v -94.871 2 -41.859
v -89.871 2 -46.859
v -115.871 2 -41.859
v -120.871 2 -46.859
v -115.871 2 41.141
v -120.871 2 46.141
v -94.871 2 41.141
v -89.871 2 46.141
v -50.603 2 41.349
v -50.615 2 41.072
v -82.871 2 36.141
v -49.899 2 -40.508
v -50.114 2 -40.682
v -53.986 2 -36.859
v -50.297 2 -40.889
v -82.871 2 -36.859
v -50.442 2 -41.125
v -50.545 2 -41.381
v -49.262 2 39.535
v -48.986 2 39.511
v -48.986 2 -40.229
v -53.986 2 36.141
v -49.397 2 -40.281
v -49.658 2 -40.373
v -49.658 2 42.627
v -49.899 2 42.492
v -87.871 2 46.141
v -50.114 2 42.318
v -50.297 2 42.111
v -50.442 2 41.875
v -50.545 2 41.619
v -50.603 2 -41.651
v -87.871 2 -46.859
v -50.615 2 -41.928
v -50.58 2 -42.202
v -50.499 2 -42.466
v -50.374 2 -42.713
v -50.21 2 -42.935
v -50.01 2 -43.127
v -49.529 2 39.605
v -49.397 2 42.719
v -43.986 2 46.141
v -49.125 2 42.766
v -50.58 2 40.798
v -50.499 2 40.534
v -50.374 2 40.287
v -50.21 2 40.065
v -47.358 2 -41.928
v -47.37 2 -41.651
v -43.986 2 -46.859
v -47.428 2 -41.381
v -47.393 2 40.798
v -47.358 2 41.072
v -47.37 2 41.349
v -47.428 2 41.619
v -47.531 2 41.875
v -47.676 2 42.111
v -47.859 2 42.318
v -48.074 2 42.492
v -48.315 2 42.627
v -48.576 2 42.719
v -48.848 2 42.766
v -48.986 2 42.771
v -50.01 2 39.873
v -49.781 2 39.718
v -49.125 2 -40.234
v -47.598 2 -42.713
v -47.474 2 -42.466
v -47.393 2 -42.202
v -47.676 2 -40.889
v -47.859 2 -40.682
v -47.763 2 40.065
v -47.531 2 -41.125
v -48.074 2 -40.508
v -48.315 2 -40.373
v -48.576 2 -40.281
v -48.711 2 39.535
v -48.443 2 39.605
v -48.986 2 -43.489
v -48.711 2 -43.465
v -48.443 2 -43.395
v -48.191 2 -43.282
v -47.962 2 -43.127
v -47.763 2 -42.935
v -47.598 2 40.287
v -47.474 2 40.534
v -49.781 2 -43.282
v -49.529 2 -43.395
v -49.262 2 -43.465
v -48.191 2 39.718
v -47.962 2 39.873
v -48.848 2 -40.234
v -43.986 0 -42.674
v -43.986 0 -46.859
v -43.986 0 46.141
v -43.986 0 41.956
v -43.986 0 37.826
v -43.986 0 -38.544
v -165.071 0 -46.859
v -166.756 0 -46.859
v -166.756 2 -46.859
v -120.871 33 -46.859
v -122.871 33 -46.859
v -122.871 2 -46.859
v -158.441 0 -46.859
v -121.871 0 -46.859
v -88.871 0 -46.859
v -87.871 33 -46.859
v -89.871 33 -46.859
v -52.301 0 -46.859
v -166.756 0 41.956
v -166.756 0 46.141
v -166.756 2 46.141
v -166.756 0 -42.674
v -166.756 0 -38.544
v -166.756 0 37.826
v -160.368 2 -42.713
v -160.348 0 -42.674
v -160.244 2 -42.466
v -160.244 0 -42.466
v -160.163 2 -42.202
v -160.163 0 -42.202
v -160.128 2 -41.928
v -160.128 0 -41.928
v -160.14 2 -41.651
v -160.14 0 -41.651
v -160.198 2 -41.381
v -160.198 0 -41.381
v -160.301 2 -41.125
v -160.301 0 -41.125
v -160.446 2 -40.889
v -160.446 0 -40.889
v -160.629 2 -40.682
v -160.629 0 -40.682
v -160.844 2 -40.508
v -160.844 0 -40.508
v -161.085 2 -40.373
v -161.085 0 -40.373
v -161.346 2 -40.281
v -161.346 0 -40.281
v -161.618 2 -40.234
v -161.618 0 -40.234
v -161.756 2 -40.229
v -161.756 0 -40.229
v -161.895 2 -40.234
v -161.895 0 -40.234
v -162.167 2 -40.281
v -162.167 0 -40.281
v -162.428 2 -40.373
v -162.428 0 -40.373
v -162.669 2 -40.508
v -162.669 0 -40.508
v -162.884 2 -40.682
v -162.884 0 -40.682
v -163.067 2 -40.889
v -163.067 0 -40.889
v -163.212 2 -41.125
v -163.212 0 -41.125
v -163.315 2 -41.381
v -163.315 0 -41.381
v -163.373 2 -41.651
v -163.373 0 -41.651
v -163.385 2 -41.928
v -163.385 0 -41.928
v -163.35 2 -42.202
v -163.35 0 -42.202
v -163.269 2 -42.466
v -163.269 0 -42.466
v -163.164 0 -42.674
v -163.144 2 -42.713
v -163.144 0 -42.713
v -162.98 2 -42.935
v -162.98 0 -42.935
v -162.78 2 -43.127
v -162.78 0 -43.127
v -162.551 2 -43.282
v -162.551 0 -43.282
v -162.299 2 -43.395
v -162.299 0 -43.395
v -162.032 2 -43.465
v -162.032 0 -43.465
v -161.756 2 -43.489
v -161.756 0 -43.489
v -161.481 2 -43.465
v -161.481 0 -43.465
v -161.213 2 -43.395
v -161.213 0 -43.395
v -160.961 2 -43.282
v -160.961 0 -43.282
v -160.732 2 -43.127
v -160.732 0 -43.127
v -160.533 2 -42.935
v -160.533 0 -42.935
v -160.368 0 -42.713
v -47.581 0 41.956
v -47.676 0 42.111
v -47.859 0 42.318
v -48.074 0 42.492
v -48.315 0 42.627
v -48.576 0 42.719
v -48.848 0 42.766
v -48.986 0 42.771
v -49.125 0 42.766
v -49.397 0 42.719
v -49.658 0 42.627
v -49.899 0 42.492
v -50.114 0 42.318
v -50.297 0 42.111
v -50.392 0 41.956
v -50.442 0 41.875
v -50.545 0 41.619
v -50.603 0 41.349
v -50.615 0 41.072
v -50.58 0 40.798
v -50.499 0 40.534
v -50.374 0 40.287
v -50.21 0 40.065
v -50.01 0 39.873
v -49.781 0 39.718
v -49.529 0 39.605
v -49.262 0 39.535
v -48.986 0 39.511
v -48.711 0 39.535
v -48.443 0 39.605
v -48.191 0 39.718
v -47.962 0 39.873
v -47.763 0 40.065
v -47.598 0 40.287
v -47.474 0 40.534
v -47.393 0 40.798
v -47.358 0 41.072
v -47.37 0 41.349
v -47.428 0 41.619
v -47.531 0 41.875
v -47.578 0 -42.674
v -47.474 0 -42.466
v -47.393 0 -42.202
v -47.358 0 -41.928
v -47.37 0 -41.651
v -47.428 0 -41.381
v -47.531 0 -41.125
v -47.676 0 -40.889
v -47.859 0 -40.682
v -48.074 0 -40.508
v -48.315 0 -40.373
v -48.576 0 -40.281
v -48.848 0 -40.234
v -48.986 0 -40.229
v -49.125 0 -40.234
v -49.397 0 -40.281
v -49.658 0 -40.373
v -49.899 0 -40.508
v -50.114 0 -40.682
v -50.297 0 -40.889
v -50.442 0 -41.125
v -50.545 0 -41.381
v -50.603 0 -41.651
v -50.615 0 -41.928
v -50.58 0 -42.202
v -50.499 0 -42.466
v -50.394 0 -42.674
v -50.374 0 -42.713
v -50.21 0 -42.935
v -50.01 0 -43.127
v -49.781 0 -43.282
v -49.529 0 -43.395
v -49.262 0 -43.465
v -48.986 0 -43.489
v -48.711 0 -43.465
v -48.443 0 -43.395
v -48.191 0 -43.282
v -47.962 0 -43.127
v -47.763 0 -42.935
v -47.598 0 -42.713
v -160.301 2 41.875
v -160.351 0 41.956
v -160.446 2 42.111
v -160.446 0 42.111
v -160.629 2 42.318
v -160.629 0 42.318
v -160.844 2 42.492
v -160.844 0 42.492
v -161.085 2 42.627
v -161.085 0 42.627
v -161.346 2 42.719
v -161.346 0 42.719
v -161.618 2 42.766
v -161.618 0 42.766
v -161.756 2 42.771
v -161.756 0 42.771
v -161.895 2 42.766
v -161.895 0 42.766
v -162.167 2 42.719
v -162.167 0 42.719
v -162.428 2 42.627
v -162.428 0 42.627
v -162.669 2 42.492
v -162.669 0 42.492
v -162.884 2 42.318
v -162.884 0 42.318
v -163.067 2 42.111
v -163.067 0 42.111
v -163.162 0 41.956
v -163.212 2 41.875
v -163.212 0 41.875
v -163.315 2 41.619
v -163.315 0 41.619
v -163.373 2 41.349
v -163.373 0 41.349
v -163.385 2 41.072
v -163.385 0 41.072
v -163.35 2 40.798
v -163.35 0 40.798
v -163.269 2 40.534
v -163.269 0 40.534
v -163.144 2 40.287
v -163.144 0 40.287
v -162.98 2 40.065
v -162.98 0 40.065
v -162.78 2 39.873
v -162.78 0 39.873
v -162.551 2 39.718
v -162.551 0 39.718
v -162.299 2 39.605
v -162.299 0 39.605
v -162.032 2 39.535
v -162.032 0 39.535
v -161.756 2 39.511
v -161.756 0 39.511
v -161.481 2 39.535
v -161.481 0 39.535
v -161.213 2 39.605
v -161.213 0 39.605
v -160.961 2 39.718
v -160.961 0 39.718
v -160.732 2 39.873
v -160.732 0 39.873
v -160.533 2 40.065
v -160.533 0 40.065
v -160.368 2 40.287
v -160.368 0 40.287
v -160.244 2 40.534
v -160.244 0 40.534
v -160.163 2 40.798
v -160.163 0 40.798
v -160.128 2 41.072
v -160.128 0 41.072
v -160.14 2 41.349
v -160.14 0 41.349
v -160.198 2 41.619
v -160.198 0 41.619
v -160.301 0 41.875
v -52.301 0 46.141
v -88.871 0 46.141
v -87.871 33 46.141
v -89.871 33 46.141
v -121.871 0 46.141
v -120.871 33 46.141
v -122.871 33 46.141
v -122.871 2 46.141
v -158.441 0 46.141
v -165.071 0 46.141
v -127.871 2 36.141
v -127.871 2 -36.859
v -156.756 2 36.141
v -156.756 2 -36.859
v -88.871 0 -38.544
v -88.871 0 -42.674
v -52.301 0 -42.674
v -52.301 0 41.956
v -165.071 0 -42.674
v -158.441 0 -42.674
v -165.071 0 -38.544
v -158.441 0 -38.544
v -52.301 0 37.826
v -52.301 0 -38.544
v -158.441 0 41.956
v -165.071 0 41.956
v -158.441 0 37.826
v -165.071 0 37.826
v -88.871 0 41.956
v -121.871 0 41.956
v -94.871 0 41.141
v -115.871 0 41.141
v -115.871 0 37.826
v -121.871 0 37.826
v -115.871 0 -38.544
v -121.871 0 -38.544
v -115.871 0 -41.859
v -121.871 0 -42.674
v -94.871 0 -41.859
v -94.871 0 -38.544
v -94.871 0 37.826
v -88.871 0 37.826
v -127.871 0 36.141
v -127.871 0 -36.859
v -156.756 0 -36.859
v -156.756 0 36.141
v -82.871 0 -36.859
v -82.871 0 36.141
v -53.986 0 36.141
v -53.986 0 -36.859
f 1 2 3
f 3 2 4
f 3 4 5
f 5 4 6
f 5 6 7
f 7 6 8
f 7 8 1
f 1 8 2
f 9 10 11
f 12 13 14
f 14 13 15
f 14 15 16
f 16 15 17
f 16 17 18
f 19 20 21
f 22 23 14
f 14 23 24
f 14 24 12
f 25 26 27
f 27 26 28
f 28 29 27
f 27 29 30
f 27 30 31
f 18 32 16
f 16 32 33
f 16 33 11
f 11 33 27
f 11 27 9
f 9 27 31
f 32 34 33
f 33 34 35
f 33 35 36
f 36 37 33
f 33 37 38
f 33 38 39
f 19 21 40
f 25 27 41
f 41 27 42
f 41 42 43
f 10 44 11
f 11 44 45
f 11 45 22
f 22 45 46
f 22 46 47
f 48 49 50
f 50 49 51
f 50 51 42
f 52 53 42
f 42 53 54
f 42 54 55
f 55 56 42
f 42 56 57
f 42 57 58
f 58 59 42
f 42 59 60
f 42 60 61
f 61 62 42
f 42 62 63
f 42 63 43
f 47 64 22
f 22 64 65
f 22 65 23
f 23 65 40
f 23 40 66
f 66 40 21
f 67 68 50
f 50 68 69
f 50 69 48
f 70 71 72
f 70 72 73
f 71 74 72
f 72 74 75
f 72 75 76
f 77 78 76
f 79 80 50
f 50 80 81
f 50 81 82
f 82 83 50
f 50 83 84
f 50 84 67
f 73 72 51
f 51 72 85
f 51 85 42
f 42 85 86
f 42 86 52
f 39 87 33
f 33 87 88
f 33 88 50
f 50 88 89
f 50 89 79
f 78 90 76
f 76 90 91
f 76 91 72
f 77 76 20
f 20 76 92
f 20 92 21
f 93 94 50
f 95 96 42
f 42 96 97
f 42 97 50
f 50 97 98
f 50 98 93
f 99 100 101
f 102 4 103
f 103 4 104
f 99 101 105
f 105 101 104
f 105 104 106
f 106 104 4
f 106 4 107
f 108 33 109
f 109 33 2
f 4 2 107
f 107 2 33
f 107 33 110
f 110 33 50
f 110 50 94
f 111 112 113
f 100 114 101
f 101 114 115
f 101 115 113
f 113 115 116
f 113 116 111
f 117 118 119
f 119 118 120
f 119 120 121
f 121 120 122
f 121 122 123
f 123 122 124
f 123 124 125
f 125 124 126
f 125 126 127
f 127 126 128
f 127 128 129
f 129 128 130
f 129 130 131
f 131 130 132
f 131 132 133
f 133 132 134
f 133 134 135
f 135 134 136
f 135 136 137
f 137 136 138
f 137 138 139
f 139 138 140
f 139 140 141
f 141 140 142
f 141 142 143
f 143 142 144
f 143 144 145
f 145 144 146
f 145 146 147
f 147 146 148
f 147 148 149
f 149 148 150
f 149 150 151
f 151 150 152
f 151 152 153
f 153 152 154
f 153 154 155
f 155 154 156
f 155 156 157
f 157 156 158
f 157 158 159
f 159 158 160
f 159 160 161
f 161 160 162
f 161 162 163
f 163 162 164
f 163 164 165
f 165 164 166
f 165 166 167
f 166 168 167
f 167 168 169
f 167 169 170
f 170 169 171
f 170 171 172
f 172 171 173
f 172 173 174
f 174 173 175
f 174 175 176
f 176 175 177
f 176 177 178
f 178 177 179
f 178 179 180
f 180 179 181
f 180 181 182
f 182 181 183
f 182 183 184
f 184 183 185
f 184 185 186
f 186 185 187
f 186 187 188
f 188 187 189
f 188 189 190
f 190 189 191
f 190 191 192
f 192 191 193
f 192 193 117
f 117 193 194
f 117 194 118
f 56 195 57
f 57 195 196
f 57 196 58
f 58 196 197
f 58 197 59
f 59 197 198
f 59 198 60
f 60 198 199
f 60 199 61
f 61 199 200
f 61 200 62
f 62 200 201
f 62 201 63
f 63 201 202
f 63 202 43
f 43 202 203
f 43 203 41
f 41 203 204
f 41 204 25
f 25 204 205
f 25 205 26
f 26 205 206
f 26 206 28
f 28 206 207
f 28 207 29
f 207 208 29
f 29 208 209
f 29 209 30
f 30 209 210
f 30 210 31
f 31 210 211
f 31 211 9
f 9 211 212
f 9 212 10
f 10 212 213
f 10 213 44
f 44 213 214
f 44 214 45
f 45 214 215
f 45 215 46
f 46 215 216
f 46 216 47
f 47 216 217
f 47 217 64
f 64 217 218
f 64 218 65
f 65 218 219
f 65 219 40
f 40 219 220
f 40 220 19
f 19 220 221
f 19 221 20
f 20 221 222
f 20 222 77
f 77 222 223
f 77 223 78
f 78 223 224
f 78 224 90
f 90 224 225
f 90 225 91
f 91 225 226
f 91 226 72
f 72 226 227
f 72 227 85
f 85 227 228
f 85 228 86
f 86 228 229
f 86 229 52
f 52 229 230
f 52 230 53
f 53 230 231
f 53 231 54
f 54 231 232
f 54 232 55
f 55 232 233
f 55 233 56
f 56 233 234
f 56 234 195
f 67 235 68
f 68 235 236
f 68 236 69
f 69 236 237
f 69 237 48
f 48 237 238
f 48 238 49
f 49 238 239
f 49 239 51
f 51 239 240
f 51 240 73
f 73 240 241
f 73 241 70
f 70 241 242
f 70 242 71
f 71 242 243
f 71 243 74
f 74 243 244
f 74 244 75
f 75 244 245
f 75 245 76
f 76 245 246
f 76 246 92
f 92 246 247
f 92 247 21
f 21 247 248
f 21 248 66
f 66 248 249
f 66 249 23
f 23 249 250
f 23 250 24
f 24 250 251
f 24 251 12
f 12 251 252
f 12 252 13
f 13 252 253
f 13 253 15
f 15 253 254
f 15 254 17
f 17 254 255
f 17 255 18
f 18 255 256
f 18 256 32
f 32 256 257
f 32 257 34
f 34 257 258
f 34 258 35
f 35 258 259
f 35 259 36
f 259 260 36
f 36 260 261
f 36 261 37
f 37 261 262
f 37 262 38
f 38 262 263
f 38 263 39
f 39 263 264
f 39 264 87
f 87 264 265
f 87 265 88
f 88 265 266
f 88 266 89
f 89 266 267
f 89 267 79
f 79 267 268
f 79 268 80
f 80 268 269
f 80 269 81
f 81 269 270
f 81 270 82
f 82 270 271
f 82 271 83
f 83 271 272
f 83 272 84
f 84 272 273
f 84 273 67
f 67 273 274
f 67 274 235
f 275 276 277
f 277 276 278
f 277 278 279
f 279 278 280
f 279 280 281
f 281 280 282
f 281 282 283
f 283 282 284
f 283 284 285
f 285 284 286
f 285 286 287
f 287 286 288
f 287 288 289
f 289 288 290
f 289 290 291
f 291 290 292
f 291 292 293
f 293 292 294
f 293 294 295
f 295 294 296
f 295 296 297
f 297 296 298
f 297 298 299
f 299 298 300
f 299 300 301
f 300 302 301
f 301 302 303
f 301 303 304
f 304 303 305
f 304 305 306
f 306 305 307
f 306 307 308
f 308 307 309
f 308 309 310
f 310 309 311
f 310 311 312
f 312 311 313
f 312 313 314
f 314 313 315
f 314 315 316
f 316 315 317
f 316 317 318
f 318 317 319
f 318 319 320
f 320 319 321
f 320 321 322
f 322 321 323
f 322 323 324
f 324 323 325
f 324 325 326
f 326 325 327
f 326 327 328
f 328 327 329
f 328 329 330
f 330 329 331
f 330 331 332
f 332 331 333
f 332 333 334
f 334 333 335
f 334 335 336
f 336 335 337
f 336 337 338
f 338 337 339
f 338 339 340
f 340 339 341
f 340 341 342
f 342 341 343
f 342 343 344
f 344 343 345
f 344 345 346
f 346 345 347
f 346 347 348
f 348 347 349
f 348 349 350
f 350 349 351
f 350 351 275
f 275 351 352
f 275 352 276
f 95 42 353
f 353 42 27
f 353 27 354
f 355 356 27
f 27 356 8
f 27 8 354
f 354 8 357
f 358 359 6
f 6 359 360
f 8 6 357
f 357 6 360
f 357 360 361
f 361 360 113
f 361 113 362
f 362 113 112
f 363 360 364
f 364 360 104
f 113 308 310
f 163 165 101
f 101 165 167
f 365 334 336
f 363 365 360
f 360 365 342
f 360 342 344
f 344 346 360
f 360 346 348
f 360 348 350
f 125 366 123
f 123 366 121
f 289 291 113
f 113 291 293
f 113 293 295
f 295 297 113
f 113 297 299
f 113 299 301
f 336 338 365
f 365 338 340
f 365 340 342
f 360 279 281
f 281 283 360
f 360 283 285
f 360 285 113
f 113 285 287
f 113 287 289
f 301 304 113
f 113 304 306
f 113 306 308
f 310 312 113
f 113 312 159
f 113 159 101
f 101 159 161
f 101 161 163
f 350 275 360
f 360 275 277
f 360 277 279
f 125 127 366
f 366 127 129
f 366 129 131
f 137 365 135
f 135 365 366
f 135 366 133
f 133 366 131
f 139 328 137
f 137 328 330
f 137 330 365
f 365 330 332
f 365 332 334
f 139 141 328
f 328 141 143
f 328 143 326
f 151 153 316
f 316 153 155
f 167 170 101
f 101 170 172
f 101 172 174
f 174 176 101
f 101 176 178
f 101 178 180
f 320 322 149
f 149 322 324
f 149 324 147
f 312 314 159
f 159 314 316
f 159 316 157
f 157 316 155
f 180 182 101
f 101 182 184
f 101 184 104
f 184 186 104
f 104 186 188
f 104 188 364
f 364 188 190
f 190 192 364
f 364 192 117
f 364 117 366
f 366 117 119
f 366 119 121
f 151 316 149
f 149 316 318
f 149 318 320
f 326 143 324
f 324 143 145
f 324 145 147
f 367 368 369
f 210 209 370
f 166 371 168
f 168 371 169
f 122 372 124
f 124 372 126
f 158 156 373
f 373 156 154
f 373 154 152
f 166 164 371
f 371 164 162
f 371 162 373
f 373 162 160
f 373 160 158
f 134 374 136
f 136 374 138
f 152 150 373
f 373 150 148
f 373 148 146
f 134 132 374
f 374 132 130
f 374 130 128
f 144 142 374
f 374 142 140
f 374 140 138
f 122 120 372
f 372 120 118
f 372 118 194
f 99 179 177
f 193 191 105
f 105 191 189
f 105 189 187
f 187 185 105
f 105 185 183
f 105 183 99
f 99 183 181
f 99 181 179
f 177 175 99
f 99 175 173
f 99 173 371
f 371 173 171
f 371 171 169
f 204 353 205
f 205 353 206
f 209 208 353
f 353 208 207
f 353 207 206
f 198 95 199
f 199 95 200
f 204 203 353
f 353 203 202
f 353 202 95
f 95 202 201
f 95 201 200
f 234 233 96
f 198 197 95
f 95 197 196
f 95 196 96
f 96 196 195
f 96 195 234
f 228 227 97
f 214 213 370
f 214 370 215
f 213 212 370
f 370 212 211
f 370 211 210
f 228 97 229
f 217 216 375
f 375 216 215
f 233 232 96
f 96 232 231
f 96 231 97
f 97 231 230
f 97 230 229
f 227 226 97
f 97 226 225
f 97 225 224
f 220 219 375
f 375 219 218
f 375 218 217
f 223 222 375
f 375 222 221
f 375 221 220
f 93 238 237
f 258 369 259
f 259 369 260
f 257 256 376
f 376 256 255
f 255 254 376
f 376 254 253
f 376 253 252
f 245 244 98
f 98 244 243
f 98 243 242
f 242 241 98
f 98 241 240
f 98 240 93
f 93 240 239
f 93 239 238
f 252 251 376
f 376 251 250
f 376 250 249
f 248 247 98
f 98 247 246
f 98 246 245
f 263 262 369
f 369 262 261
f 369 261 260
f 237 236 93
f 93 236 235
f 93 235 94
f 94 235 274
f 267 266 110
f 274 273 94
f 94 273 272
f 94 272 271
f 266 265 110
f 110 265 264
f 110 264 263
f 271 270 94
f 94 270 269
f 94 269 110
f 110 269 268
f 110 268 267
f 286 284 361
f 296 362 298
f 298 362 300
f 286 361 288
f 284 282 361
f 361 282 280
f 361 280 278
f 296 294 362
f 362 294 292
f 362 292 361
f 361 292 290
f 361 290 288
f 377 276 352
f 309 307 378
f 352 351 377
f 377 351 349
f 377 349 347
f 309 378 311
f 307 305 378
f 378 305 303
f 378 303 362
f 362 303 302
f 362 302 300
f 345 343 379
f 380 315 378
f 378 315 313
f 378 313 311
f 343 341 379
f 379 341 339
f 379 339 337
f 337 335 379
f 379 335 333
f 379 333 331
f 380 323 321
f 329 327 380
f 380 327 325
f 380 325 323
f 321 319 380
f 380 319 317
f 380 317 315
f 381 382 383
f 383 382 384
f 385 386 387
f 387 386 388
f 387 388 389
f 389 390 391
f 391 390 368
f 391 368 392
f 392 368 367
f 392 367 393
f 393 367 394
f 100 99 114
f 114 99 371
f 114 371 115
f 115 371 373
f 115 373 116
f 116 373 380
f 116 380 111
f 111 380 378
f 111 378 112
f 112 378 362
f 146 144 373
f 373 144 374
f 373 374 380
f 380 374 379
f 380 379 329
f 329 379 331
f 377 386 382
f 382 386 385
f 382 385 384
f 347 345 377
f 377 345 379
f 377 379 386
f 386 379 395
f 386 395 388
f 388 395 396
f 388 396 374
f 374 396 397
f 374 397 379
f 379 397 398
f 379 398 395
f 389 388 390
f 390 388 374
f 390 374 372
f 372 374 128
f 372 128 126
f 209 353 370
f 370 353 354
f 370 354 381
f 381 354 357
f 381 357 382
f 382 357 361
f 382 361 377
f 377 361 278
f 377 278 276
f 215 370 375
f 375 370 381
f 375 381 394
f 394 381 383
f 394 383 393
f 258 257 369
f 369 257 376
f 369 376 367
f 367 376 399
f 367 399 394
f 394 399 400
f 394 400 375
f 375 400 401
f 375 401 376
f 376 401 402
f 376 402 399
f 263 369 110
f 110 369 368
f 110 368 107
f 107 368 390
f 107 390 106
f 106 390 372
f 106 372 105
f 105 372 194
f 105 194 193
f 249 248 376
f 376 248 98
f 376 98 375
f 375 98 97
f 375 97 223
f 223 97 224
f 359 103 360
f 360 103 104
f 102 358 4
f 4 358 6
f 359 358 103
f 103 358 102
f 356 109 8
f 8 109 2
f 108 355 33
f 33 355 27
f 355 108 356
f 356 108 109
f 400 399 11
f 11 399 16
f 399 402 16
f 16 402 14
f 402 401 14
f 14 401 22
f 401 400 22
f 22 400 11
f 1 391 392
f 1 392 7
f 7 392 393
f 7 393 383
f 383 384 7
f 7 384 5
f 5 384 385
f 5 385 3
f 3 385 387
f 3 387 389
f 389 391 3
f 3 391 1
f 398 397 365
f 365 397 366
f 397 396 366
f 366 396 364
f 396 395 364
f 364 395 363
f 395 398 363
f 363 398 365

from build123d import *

# Parameters (mm, degrees)
SKETCH1_W           = 122.77
SKETCH1_H           = 93
SKETCH1_R           = 1.63
BOSS_EXTRUDE1_DEPTH = 2
SKETCH2_W           = 2
SKETCH2_H           = 93
BOSS_EXTRUDE2_DEPTH = 31
SKETCH3_W           = 28.885
SKETCH3_H           = 73
SKETCH3_W_2         = 21
SKETCH3_H_2         = 83
CUT_EXTRUDE1_DEPTH  = 176.967075005


with BuildPart() as part:
    # Sketch1 → Boss-Extrude1 (new body)
    with BuildSketch(Plane(origin=(0, 0, 0), x_dir=(1, 0, 0), z_dir=(0, 1, 0))):
        with Locations((-105.371378726, 0.358527933)):
            Rectangle(SKETCH1_W, SKETCH1_H)
        with Locations(Location((-161.756378726, 41.858527933, 0), (0, 0, 270))):
            Circle(SKETCH1_R, mode=Mode.SUBTRACT)
        with Locations(Location((-48.986378726, 41.858527933, 0), (0, 0, 270))):
            Circle(SKETCH1_R, mode=Mode.SUBTRACT)
        with Locations(Location((-161.756378726, -41.141472067, 0), (0, 0, 270))):
            Circle(SKETCH1_R, mode=Mode.SUBTRACT)
        with Locations(Location((-48.986378726, -41.141472067, 0), (0, 0, 270))):
            Circle(SKETCH1_R, mode=Mode.SUBTRACT)
    extrude(amount=BOSS_EXTRUDE1_DEPTH)

    # Sketch2 → Boss-Extrude2 (add)
    with BuildSketch(Plane(origin=(0, 2, 0), x_dir=(1, 0, 0), z_dir=(0, 1, 0))):
        with Locations((-121.871378726, 0.358527933)):
            Rectangle(SKETCH2_W, SKETCH2_H)
        with Locations((-88.871378726, 0.358527933)):
            Rectangle(SKETCH2_W, SKETCH2_H)
    extrude(amount=BOSS_EXTRUDE2_DEPTH)

    # Sketch3 → Cut-Extrude1 (cut, through all)
    with BuildSketch(Plane(origin=(0, 2, 0), x_dir=(1, 0, 0), z_dir=(0, 1, 0))):
        with Locations((-142.313878726, 0.358527933)):
            Rectangle(SKETCH3_W, SKETCH3_H)
        with Locations((-105.371378726, 0.358527933)):
            Rectangle(SKETCH3_W_2, SKETCH3_H_2)
        with Locations((-68.428878726, 0.358527933)):
            Rectangle(SKETCH3_W, SKETCH3_H)
    extrude(amount=-CUT_EXTRUDE1_DEPTH, mode=Mode.SUBTRACT)


solid = part.part
